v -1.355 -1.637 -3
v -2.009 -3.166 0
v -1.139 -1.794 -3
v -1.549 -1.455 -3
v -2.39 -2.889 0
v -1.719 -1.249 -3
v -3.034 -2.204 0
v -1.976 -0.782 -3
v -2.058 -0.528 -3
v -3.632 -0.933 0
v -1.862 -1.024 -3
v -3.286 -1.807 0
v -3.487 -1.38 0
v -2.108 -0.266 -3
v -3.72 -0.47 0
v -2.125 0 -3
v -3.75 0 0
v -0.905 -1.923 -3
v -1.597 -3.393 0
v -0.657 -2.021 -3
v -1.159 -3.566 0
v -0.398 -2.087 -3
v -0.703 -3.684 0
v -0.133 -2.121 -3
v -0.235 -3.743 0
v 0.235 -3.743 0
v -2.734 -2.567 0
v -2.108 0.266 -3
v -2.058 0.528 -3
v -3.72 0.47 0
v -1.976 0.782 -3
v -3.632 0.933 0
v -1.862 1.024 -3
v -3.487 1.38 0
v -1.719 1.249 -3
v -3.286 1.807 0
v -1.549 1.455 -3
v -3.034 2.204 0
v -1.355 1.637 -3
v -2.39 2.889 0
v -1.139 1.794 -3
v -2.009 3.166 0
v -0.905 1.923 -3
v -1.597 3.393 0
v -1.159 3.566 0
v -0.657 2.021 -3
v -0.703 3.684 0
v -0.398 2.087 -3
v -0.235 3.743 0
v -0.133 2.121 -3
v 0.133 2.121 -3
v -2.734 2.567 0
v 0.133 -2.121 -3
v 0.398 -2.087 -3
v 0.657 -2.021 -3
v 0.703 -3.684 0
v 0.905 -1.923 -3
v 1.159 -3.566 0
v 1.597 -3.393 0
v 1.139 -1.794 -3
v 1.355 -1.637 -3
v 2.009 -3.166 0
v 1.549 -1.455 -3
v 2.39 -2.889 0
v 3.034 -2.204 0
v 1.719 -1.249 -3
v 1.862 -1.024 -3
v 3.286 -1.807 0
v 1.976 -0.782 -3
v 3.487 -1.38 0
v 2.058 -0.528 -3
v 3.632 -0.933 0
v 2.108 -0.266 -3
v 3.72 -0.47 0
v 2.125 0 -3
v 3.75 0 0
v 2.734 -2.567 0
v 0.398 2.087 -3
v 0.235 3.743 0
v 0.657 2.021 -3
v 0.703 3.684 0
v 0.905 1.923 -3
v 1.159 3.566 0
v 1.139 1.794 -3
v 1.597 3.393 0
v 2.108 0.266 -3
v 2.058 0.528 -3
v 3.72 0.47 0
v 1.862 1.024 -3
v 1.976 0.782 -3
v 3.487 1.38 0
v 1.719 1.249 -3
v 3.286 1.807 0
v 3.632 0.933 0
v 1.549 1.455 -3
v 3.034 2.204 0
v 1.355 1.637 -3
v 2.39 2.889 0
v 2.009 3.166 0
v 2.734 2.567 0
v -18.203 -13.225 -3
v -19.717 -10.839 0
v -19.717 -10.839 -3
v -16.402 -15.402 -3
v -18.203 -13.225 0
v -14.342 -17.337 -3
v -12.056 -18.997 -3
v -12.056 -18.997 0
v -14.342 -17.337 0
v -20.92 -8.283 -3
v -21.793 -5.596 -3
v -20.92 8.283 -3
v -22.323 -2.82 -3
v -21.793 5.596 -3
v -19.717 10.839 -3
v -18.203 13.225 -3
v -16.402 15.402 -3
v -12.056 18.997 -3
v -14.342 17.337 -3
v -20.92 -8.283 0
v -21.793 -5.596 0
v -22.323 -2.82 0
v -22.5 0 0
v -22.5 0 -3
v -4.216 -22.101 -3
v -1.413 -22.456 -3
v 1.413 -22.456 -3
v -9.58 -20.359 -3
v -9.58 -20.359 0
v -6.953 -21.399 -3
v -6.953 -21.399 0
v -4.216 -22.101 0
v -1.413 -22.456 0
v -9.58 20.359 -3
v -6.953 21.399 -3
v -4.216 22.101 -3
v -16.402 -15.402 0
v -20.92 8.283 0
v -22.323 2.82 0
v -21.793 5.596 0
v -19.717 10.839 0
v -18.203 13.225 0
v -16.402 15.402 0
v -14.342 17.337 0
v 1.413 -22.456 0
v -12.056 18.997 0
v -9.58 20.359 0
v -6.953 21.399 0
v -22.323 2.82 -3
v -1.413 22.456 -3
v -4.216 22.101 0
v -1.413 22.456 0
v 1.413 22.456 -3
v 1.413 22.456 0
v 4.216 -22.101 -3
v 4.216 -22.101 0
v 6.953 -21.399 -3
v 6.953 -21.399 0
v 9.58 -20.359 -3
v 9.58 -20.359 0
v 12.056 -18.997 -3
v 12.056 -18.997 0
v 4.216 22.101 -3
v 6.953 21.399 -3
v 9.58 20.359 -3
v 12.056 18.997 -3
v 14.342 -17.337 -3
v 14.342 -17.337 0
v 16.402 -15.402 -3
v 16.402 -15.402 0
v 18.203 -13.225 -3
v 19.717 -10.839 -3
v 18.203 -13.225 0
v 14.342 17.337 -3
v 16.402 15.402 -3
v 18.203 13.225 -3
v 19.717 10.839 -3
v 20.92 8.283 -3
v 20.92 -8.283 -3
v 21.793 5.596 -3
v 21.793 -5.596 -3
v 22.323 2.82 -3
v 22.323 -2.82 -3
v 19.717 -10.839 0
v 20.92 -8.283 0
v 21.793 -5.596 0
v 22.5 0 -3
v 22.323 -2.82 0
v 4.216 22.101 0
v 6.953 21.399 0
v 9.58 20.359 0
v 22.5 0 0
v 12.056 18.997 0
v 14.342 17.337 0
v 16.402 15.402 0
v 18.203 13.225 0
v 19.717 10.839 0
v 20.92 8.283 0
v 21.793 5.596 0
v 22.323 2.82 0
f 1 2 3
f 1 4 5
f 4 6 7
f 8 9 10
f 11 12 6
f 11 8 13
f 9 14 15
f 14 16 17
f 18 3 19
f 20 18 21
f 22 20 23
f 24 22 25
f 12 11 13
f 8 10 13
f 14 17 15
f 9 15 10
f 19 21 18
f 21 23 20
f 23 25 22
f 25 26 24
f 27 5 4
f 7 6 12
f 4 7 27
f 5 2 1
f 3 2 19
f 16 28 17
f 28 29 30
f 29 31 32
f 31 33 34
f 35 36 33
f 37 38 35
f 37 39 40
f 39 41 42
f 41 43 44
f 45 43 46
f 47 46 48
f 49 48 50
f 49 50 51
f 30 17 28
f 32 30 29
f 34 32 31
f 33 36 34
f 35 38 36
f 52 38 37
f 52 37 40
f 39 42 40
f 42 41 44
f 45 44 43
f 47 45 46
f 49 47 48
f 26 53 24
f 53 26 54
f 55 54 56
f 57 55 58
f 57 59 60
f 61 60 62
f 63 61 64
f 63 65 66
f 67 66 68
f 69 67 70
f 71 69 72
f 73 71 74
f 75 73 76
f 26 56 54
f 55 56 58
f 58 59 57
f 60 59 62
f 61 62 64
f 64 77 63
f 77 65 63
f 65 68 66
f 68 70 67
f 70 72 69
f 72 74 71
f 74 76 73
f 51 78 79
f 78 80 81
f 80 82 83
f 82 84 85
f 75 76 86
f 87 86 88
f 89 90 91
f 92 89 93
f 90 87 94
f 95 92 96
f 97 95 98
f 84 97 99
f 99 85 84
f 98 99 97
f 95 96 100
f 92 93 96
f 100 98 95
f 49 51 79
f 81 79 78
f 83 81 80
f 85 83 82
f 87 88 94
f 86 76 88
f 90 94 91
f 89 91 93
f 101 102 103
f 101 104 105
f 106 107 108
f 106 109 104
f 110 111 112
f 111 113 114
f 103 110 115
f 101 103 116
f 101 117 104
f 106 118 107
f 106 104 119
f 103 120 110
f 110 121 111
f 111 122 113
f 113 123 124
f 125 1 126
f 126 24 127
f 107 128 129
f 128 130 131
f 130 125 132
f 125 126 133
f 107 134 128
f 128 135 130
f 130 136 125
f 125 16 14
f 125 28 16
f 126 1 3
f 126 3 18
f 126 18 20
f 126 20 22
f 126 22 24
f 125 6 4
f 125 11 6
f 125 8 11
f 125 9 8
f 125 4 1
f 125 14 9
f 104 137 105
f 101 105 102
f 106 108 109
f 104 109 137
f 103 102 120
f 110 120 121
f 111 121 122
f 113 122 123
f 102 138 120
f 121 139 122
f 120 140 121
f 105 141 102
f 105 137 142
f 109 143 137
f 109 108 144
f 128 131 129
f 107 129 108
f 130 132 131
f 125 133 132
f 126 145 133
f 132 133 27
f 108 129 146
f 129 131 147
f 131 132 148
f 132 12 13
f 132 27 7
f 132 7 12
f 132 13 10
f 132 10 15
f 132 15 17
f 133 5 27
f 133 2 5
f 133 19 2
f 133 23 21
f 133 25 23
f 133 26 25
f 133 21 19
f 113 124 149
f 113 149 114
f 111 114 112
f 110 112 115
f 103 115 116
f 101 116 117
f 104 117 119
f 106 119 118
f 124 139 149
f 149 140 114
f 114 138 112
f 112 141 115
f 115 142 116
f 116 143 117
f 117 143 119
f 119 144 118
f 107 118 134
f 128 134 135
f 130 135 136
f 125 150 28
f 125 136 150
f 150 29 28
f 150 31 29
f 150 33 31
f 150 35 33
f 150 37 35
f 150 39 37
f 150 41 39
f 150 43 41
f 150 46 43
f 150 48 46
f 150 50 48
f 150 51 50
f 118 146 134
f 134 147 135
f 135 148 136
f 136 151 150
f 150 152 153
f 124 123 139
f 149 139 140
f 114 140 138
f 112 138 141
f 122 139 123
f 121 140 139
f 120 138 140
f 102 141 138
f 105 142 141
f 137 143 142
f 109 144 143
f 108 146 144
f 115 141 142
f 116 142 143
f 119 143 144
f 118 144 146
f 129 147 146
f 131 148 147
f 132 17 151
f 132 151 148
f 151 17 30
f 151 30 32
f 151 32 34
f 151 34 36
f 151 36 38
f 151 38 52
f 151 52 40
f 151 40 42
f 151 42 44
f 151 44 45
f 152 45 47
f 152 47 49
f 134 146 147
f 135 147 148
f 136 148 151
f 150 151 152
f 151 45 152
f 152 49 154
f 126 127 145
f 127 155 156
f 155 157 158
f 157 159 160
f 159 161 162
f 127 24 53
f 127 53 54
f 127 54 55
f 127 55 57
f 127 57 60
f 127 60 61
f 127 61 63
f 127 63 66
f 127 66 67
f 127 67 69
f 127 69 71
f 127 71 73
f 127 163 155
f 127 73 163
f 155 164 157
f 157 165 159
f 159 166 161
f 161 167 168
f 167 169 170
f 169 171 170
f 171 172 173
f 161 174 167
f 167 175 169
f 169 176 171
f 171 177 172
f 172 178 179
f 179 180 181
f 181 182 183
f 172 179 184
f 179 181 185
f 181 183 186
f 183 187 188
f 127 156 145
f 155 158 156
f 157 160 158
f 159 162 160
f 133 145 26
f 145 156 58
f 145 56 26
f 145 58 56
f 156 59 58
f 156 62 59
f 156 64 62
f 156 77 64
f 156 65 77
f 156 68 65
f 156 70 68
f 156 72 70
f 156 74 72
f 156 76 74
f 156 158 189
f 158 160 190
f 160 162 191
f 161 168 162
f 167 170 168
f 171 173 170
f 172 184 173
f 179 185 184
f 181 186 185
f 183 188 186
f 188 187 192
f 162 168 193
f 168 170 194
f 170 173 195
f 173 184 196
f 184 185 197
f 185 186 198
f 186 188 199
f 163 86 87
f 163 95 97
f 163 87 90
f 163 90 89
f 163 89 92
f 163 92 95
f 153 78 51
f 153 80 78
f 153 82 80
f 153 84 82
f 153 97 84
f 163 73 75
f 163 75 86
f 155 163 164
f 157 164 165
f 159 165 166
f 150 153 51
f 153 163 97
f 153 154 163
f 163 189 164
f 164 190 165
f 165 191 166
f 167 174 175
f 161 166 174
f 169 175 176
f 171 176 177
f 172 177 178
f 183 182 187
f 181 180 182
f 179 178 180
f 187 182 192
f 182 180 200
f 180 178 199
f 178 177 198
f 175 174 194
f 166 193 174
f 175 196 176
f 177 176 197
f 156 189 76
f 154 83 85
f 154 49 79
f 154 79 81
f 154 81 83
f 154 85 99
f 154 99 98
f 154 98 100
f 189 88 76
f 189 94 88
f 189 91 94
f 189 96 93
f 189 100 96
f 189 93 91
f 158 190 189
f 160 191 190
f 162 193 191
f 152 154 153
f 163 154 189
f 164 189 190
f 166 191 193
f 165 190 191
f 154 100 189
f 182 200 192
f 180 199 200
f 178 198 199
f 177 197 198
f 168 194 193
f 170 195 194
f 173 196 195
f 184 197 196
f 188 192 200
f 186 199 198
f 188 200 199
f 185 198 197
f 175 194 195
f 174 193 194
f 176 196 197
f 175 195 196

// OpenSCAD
$fn = 50;

difference() {
	union() {
		translate(v = [0, 0, -3.0]) {
			cylinder(h = 3, r = 22.5);
		}
	}
	union() {
		translate(v = [0, 0, 0]) {
			rotate(a = [0, 0, 0]) {
				difference() {
					union() {
						translate(v = [0, 0, -6.0]) {
							cylinder(h = 6, r = 2.0);
						}
						translate(v = [0, 0, -3]) {
							cylinder(h = 3, r1 = 2.125, r2 = 3.75);
						}
						translate(v = [0, 0, -6.0]) {
							cylinder(h = 6, r = 2.125);
						}
						translate(v = [0, 0, -6.0]) {
							cylinder(h = 6, r = 2.0);
						}
					}
					union();
				}
			}
		}
	}
}
